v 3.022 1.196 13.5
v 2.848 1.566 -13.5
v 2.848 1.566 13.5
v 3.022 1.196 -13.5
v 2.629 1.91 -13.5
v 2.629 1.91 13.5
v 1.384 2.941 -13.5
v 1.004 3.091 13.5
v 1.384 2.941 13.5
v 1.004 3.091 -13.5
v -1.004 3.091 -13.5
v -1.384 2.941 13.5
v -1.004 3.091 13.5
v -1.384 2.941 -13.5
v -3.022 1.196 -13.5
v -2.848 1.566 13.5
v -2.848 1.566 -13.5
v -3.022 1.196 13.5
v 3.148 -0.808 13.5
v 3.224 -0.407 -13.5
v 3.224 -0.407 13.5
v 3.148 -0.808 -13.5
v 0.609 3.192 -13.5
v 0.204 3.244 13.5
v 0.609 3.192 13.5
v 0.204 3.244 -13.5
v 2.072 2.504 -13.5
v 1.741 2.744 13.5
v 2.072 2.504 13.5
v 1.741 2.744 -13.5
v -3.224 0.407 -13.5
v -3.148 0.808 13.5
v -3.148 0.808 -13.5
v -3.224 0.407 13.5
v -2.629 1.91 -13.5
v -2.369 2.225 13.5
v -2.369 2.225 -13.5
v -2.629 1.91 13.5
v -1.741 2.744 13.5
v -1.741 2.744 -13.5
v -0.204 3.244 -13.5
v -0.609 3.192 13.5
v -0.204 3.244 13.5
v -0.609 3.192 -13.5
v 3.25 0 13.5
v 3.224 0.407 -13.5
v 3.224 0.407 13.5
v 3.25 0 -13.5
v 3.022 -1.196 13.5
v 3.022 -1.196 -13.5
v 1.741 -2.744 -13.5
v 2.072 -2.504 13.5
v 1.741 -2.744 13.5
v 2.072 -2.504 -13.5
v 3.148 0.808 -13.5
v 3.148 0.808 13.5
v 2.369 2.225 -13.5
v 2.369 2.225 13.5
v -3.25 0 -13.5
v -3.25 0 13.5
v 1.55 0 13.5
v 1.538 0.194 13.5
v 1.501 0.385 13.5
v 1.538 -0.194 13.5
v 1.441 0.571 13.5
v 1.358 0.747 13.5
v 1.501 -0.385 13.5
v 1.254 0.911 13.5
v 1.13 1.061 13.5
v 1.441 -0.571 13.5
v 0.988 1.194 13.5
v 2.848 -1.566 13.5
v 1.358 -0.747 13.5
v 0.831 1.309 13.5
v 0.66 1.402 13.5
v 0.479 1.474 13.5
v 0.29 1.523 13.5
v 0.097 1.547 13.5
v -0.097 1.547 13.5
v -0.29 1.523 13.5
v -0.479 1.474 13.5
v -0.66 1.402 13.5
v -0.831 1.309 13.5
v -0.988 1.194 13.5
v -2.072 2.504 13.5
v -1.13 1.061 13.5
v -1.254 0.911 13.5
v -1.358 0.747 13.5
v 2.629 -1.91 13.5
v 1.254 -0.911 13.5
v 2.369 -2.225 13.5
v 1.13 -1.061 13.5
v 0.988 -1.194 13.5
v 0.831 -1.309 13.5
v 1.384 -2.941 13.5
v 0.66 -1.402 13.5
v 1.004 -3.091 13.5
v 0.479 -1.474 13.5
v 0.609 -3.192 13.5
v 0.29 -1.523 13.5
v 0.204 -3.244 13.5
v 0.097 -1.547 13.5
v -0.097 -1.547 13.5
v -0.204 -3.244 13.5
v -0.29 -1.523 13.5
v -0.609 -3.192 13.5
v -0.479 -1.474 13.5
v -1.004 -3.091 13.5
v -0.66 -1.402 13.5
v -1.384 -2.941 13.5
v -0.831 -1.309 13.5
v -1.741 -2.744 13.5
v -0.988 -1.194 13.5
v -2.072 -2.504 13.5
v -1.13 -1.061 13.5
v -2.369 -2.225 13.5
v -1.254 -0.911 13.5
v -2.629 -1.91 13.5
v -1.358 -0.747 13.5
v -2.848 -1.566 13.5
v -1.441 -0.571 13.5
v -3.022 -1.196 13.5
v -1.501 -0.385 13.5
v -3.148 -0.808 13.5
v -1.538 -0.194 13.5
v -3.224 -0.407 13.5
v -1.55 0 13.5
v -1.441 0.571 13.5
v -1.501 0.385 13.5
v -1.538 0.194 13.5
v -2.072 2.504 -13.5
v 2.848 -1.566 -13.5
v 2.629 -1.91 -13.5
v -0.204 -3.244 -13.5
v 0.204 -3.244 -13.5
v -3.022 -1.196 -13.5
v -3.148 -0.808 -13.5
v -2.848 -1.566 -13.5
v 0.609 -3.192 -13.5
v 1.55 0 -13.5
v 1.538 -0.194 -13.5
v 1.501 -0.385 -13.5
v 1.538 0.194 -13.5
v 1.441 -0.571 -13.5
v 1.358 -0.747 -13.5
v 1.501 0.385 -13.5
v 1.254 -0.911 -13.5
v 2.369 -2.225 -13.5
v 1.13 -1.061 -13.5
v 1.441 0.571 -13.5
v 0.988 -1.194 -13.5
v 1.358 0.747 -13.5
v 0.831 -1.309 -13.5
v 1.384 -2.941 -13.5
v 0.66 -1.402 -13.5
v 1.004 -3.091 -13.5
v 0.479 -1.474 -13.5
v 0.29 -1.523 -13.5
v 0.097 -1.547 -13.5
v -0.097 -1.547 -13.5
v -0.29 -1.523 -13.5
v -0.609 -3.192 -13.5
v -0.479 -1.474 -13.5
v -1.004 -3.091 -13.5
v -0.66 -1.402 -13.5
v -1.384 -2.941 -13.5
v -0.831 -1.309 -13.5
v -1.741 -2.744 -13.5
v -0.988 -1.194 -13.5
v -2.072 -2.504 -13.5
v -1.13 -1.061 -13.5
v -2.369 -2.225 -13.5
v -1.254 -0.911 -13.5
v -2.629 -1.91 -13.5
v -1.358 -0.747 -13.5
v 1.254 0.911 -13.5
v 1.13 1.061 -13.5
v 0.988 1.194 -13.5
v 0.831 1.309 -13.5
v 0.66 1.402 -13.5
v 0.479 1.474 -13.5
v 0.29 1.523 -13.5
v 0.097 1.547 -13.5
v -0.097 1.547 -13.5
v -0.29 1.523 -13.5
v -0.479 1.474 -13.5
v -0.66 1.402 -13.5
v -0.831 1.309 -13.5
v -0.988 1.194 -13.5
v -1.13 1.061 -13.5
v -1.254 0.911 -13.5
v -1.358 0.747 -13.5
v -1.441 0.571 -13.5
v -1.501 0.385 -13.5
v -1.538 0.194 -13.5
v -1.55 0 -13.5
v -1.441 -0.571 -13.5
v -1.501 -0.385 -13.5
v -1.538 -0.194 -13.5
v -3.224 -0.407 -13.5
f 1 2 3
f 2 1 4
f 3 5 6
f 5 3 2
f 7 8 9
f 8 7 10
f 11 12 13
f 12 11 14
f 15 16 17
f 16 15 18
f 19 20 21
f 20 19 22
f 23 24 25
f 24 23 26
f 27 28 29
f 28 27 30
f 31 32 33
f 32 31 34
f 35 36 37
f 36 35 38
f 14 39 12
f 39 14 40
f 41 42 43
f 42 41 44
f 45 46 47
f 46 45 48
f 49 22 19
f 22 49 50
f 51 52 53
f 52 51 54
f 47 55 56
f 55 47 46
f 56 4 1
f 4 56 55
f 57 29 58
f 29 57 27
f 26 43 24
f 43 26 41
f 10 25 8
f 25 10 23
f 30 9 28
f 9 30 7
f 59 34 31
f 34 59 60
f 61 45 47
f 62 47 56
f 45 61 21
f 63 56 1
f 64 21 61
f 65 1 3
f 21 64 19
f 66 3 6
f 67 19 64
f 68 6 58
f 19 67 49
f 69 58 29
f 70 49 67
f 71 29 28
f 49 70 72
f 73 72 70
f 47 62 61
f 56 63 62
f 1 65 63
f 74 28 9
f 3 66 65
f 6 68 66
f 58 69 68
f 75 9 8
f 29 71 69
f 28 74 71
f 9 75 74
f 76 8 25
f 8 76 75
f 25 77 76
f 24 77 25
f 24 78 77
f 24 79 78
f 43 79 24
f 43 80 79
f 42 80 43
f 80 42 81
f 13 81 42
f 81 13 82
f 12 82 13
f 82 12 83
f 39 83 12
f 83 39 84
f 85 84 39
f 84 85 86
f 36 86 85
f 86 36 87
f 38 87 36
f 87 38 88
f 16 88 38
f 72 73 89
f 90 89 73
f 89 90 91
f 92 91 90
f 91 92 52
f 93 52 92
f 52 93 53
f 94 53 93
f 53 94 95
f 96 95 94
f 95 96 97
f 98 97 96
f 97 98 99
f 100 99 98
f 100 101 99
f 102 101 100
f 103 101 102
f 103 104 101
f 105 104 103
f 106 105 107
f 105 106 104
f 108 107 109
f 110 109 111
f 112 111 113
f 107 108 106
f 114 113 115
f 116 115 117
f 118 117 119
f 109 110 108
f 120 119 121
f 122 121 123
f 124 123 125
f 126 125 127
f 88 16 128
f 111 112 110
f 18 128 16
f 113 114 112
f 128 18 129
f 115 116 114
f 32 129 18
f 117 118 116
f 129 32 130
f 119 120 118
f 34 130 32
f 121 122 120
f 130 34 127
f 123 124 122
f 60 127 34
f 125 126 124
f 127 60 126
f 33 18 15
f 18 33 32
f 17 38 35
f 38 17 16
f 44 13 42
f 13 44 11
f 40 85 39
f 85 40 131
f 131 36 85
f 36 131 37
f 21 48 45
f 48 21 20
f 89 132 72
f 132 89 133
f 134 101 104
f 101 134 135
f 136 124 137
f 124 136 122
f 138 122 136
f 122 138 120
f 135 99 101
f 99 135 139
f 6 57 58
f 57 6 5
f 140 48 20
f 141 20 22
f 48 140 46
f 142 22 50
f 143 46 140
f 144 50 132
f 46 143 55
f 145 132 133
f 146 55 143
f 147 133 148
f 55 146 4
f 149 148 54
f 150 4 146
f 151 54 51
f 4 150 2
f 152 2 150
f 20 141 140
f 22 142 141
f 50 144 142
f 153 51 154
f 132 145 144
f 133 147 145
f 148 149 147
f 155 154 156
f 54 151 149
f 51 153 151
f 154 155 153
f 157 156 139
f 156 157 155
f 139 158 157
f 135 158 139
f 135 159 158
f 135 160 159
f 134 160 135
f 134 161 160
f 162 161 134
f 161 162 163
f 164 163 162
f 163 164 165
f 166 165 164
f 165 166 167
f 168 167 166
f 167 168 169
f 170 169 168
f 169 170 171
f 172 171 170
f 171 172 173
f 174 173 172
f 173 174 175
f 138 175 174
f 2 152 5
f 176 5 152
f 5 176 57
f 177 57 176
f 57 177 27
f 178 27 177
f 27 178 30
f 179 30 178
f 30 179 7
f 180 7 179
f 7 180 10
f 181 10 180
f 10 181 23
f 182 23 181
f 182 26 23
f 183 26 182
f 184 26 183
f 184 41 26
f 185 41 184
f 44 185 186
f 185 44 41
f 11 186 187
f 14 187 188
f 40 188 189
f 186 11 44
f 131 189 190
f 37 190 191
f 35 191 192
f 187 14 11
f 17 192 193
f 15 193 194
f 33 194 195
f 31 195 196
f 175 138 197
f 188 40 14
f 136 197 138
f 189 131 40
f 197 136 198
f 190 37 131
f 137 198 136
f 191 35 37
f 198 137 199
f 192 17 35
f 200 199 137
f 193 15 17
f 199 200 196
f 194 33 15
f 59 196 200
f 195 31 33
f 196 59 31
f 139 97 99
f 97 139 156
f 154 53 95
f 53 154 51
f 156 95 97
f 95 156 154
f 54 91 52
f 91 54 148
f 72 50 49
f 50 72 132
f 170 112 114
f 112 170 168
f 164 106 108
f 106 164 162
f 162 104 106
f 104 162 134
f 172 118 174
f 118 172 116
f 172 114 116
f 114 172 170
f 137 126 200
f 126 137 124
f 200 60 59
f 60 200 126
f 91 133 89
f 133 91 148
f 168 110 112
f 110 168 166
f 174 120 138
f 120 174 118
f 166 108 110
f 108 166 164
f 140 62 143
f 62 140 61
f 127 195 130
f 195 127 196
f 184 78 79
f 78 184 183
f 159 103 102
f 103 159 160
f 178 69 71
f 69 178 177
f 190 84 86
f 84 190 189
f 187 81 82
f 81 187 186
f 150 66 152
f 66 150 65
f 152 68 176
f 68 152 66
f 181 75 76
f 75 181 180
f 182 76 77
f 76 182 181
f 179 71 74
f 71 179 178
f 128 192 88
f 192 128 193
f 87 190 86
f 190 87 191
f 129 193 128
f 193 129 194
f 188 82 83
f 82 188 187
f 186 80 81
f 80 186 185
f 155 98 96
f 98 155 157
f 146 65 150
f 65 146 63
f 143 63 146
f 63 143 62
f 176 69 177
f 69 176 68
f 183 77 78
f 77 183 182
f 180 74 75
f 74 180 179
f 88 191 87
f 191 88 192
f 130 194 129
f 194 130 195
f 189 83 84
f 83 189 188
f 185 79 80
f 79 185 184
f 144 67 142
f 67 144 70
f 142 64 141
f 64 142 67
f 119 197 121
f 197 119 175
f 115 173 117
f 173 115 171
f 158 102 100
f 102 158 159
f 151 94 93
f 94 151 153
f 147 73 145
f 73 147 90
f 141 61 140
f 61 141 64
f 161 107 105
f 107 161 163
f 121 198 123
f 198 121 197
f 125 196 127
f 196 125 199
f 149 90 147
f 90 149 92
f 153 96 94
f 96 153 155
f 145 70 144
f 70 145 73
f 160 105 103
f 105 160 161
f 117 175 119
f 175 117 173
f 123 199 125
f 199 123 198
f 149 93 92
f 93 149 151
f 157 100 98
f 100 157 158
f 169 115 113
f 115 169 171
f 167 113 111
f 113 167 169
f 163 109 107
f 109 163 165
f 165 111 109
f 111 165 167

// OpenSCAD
$fn = 50;


difference() {
	union() {
		translate(v = [0, 0, -13.5000000000]) {
			cylinder(h = 27, r = 3.2500000000);
		}
	}
	union() {
		translate(v = [0, 0, -100.0000000000]) {
			cylinder(h = 200, r = 1.5500000000);
		}
	}
}
